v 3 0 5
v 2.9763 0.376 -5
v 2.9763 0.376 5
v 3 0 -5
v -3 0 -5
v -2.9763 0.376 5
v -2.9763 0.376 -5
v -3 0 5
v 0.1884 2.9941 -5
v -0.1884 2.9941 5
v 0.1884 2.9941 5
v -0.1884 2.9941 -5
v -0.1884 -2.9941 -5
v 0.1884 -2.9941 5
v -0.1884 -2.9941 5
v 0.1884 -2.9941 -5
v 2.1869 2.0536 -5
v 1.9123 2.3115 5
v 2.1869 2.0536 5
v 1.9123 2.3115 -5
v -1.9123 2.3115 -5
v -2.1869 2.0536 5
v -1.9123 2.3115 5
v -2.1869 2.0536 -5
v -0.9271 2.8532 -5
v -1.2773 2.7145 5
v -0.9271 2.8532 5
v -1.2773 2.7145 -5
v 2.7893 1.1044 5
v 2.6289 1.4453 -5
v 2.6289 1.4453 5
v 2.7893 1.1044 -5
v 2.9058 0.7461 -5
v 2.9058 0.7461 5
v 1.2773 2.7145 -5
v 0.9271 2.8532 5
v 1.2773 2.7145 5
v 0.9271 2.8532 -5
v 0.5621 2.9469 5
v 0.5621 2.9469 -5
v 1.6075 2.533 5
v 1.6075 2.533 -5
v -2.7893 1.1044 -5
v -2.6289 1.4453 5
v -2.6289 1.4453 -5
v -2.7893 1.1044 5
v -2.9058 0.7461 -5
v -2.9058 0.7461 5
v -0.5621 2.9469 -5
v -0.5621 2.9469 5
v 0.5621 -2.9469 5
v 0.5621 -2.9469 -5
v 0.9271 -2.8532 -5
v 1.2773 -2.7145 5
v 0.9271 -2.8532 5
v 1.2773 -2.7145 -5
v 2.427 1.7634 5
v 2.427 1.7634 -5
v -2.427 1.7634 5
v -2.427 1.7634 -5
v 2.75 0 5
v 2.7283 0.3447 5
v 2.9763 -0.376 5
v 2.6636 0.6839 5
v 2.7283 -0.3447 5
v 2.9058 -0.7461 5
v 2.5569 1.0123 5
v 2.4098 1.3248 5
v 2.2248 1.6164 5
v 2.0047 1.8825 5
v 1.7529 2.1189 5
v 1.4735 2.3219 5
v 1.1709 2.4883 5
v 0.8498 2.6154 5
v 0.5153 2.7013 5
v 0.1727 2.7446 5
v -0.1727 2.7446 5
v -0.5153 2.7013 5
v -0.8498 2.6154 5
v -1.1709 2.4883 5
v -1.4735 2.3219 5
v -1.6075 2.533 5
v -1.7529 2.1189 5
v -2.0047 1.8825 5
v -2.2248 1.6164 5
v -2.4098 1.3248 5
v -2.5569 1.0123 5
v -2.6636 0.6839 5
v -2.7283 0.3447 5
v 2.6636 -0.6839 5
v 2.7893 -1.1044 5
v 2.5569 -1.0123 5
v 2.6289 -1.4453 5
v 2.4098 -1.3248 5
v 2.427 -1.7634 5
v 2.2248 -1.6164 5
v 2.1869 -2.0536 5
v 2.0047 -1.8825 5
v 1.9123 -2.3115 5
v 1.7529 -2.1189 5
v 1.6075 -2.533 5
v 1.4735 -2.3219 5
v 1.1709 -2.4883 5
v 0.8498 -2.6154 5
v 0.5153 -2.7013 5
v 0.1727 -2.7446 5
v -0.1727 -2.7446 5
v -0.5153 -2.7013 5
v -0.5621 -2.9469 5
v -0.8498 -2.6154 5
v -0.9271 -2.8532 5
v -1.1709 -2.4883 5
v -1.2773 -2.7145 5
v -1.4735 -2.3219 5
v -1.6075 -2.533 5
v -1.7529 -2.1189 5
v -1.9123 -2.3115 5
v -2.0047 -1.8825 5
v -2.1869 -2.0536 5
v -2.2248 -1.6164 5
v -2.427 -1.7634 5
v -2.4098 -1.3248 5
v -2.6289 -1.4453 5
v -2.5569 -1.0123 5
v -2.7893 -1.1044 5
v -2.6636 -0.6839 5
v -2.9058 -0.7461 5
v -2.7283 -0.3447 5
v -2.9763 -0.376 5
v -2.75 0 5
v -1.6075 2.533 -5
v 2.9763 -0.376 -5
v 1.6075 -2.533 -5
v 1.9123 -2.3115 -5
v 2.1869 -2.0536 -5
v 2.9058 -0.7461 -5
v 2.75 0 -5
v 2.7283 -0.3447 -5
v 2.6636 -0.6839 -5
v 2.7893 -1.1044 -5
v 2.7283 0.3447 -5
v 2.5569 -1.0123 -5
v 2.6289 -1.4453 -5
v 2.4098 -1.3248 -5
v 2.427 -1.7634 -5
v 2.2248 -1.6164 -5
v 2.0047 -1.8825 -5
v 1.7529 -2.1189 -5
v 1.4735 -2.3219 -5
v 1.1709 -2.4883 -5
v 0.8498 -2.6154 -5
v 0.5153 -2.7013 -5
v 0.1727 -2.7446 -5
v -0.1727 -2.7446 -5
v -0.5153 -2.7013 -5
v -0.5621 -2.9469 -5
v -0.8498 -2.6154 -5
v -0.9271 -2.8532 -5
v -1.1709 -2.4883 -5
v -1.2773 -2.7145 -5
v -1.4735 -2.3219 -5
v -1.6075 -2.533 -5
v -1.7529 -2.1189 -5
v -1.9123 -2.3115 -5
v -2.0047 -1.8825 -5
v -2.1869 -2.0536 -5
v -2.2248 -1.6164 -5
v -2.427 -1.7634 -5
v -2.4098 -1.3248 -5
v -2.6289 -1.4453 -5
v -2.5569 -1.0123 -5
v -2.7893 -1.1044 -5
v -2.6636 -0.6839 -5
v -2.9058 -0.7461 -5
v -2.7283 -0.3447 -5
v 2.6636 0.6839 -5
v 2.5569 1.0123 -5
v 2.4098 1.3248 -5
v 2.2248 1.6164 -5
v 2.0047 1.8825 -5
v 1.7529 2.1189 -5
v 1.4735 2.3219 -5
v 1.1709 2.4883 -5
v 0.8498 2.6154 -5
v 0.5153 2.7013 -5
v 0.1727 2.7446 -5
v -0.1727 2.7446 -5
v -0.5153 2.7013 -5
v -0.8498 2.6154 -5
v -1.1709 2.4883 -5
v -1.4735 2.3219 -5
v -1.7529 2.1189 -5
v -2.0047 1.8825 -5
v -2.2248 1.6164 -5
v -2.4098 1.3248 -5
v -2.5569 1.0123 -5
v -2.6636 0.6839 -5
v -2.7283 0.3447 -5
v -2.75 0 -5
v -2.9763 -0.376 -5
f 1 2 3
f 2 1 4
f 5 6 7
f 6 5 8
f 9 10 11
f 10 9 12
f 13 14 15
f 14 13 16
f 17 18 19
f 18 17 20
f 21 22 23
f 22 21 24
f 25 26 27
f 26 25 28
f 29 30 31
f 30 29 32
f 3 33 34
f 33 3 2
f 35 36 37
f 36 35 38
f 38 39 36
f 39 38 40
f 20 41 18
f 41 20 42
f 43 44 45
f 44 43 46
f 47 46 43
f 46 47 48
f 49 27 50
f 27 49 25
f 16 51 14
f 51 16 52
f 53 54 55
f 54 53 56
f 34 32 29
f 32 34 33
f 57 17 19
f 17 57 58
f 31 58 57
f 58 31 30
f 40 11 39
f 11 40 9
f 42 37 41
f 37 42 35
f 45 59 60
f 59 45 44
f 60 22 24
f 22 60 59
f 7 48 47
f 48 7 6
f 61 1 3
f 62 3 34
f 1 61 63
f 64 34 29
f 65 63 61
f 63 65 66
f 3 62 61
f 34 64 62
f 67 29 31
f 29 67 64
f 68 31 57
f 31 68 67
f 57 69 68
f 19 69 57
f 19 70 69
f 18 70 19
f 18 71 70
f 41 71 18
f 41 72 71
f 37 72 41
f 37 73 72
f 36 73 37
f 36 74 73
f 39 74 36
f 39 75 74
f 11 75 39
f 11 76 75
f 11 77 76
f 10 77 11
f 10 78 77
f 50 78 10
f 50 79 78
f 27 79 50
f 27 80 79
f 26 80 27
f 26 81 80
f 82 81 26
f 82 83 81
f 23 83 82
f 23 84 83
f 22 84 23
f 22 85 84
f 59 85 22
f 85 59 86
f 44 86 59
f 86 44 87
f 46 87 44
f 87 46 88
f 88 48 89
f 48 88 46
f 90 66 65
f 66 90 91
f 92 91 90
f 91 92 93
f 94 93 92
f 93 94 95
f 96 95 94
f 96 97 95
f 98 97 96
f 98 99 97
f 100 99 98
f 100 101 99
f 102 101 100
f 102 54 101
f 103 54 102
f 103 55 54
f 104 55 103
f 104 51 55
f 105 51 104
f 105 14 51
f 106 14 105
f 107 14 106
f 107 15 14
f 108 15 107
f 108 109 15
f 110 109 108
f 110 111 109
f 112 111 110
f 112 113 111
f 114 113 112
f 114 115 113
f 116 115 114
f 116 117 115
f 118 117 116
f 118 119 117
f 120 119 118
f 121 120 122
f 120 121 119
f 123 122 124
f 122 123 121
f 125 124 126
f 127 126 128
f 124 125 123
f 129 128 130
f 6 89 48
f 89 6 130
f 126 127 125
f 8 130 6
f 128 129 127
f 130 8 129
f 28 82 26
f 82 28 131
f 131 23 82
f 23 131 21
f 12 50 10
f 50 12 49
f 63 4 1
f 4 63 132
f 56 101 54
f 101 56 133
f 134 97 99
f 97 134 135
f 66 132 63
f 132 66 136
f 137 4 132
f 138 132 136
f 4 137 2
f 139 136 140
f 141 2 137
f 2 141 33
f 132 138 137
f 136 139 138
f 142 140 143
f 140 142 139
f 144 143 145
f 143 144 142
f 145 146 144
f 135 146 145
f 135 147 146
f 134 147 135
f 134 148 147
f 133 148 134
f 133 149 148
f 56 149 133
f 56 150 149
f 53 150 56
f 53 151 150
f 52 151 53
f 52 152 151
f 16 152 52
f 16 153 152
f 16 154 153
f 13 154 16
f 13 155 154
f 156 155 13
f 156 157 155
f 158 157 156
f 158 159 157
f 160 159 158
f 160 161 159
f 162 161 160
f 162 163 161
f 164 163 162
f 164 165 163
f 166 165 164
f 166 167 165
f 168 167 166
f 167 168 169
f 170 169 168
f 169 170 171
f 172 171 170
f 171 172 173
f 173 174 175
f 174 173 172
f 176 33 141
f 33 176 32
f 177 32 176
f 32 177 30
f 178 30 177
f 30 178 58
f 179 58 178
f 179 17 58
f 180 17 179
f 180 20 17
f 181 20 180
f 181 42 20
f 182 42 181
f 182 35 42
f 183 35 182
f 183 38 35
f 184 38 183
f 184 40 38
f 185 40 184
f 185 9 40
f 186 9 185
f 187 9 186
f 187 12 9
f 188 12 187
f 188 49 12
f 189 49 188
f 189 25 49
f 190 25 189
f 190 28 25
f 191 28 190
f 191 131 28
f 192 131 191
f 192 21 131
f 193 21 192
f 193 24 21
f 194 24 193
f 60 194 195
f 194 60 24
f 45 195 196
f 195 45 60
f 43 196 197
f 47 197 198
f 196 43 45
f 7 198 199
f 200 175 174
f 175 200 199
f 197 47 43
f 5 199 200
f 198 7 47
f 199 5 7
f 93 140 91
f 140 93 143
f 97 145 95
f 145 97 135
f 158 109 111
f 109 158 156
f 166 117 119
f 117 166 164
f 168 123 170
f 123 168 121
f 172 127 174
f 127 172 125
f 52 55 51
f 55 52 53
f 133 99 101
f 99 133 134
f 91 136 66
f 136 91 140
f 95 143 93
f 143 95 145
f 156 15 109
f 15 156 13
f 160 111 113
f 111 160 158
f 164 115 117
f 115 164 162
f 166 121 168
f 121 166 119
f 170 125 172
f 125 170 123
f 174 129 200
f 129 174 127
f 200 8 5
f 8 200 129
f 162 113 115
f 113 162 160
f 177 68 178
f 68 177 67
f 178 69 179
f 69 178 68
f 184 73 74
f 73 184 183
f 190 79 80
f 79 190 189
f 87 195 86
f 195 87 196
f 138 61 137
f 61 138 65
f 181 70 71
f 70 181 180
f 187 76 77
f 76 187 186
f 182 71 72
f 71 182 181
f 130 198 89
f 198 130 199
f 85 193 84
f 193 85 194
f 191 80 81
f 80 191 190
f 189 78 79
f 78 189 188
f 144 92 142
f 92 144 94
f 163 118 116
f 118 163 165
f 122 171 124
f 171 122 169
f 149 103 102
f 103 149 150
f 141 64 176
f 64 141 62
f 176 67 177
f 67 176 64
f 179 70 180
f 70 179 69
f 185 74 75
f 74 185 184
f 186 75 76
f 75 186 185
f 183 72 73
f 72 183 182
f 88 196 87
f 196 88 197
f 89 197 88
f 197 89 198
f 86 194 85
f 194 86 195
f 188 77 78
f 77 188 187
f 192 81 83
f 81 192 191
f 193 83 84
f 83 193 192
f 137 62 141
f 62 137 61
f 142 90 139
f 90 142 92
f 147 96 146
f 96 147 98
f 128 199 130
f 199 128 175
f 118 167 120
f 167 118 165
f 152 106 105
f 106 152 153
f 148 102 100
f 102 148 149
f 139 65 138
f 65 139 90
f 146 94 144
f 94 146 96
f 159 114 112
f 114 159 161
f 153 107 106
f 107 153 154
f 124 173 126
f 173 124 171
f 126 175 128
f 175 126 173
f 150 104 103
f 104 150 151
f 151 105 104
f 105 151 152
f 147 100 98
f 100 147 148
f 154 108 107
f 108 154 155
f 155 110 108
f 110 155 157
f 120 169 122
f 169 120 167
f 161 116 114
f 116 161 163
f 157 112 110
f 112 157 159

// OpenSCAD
$fn = 50;


difference() {
	union() {
		translate(v = [0, 0, -5.0000000000]) {
			cylinder(h = 10, r = 3.0000000000);
		}
	}
	union() {
		translate(v = [0, 0, -100.0000000000]) {
			cylinder(h = 200, r = 2.7500000000);
		}
	}
}
